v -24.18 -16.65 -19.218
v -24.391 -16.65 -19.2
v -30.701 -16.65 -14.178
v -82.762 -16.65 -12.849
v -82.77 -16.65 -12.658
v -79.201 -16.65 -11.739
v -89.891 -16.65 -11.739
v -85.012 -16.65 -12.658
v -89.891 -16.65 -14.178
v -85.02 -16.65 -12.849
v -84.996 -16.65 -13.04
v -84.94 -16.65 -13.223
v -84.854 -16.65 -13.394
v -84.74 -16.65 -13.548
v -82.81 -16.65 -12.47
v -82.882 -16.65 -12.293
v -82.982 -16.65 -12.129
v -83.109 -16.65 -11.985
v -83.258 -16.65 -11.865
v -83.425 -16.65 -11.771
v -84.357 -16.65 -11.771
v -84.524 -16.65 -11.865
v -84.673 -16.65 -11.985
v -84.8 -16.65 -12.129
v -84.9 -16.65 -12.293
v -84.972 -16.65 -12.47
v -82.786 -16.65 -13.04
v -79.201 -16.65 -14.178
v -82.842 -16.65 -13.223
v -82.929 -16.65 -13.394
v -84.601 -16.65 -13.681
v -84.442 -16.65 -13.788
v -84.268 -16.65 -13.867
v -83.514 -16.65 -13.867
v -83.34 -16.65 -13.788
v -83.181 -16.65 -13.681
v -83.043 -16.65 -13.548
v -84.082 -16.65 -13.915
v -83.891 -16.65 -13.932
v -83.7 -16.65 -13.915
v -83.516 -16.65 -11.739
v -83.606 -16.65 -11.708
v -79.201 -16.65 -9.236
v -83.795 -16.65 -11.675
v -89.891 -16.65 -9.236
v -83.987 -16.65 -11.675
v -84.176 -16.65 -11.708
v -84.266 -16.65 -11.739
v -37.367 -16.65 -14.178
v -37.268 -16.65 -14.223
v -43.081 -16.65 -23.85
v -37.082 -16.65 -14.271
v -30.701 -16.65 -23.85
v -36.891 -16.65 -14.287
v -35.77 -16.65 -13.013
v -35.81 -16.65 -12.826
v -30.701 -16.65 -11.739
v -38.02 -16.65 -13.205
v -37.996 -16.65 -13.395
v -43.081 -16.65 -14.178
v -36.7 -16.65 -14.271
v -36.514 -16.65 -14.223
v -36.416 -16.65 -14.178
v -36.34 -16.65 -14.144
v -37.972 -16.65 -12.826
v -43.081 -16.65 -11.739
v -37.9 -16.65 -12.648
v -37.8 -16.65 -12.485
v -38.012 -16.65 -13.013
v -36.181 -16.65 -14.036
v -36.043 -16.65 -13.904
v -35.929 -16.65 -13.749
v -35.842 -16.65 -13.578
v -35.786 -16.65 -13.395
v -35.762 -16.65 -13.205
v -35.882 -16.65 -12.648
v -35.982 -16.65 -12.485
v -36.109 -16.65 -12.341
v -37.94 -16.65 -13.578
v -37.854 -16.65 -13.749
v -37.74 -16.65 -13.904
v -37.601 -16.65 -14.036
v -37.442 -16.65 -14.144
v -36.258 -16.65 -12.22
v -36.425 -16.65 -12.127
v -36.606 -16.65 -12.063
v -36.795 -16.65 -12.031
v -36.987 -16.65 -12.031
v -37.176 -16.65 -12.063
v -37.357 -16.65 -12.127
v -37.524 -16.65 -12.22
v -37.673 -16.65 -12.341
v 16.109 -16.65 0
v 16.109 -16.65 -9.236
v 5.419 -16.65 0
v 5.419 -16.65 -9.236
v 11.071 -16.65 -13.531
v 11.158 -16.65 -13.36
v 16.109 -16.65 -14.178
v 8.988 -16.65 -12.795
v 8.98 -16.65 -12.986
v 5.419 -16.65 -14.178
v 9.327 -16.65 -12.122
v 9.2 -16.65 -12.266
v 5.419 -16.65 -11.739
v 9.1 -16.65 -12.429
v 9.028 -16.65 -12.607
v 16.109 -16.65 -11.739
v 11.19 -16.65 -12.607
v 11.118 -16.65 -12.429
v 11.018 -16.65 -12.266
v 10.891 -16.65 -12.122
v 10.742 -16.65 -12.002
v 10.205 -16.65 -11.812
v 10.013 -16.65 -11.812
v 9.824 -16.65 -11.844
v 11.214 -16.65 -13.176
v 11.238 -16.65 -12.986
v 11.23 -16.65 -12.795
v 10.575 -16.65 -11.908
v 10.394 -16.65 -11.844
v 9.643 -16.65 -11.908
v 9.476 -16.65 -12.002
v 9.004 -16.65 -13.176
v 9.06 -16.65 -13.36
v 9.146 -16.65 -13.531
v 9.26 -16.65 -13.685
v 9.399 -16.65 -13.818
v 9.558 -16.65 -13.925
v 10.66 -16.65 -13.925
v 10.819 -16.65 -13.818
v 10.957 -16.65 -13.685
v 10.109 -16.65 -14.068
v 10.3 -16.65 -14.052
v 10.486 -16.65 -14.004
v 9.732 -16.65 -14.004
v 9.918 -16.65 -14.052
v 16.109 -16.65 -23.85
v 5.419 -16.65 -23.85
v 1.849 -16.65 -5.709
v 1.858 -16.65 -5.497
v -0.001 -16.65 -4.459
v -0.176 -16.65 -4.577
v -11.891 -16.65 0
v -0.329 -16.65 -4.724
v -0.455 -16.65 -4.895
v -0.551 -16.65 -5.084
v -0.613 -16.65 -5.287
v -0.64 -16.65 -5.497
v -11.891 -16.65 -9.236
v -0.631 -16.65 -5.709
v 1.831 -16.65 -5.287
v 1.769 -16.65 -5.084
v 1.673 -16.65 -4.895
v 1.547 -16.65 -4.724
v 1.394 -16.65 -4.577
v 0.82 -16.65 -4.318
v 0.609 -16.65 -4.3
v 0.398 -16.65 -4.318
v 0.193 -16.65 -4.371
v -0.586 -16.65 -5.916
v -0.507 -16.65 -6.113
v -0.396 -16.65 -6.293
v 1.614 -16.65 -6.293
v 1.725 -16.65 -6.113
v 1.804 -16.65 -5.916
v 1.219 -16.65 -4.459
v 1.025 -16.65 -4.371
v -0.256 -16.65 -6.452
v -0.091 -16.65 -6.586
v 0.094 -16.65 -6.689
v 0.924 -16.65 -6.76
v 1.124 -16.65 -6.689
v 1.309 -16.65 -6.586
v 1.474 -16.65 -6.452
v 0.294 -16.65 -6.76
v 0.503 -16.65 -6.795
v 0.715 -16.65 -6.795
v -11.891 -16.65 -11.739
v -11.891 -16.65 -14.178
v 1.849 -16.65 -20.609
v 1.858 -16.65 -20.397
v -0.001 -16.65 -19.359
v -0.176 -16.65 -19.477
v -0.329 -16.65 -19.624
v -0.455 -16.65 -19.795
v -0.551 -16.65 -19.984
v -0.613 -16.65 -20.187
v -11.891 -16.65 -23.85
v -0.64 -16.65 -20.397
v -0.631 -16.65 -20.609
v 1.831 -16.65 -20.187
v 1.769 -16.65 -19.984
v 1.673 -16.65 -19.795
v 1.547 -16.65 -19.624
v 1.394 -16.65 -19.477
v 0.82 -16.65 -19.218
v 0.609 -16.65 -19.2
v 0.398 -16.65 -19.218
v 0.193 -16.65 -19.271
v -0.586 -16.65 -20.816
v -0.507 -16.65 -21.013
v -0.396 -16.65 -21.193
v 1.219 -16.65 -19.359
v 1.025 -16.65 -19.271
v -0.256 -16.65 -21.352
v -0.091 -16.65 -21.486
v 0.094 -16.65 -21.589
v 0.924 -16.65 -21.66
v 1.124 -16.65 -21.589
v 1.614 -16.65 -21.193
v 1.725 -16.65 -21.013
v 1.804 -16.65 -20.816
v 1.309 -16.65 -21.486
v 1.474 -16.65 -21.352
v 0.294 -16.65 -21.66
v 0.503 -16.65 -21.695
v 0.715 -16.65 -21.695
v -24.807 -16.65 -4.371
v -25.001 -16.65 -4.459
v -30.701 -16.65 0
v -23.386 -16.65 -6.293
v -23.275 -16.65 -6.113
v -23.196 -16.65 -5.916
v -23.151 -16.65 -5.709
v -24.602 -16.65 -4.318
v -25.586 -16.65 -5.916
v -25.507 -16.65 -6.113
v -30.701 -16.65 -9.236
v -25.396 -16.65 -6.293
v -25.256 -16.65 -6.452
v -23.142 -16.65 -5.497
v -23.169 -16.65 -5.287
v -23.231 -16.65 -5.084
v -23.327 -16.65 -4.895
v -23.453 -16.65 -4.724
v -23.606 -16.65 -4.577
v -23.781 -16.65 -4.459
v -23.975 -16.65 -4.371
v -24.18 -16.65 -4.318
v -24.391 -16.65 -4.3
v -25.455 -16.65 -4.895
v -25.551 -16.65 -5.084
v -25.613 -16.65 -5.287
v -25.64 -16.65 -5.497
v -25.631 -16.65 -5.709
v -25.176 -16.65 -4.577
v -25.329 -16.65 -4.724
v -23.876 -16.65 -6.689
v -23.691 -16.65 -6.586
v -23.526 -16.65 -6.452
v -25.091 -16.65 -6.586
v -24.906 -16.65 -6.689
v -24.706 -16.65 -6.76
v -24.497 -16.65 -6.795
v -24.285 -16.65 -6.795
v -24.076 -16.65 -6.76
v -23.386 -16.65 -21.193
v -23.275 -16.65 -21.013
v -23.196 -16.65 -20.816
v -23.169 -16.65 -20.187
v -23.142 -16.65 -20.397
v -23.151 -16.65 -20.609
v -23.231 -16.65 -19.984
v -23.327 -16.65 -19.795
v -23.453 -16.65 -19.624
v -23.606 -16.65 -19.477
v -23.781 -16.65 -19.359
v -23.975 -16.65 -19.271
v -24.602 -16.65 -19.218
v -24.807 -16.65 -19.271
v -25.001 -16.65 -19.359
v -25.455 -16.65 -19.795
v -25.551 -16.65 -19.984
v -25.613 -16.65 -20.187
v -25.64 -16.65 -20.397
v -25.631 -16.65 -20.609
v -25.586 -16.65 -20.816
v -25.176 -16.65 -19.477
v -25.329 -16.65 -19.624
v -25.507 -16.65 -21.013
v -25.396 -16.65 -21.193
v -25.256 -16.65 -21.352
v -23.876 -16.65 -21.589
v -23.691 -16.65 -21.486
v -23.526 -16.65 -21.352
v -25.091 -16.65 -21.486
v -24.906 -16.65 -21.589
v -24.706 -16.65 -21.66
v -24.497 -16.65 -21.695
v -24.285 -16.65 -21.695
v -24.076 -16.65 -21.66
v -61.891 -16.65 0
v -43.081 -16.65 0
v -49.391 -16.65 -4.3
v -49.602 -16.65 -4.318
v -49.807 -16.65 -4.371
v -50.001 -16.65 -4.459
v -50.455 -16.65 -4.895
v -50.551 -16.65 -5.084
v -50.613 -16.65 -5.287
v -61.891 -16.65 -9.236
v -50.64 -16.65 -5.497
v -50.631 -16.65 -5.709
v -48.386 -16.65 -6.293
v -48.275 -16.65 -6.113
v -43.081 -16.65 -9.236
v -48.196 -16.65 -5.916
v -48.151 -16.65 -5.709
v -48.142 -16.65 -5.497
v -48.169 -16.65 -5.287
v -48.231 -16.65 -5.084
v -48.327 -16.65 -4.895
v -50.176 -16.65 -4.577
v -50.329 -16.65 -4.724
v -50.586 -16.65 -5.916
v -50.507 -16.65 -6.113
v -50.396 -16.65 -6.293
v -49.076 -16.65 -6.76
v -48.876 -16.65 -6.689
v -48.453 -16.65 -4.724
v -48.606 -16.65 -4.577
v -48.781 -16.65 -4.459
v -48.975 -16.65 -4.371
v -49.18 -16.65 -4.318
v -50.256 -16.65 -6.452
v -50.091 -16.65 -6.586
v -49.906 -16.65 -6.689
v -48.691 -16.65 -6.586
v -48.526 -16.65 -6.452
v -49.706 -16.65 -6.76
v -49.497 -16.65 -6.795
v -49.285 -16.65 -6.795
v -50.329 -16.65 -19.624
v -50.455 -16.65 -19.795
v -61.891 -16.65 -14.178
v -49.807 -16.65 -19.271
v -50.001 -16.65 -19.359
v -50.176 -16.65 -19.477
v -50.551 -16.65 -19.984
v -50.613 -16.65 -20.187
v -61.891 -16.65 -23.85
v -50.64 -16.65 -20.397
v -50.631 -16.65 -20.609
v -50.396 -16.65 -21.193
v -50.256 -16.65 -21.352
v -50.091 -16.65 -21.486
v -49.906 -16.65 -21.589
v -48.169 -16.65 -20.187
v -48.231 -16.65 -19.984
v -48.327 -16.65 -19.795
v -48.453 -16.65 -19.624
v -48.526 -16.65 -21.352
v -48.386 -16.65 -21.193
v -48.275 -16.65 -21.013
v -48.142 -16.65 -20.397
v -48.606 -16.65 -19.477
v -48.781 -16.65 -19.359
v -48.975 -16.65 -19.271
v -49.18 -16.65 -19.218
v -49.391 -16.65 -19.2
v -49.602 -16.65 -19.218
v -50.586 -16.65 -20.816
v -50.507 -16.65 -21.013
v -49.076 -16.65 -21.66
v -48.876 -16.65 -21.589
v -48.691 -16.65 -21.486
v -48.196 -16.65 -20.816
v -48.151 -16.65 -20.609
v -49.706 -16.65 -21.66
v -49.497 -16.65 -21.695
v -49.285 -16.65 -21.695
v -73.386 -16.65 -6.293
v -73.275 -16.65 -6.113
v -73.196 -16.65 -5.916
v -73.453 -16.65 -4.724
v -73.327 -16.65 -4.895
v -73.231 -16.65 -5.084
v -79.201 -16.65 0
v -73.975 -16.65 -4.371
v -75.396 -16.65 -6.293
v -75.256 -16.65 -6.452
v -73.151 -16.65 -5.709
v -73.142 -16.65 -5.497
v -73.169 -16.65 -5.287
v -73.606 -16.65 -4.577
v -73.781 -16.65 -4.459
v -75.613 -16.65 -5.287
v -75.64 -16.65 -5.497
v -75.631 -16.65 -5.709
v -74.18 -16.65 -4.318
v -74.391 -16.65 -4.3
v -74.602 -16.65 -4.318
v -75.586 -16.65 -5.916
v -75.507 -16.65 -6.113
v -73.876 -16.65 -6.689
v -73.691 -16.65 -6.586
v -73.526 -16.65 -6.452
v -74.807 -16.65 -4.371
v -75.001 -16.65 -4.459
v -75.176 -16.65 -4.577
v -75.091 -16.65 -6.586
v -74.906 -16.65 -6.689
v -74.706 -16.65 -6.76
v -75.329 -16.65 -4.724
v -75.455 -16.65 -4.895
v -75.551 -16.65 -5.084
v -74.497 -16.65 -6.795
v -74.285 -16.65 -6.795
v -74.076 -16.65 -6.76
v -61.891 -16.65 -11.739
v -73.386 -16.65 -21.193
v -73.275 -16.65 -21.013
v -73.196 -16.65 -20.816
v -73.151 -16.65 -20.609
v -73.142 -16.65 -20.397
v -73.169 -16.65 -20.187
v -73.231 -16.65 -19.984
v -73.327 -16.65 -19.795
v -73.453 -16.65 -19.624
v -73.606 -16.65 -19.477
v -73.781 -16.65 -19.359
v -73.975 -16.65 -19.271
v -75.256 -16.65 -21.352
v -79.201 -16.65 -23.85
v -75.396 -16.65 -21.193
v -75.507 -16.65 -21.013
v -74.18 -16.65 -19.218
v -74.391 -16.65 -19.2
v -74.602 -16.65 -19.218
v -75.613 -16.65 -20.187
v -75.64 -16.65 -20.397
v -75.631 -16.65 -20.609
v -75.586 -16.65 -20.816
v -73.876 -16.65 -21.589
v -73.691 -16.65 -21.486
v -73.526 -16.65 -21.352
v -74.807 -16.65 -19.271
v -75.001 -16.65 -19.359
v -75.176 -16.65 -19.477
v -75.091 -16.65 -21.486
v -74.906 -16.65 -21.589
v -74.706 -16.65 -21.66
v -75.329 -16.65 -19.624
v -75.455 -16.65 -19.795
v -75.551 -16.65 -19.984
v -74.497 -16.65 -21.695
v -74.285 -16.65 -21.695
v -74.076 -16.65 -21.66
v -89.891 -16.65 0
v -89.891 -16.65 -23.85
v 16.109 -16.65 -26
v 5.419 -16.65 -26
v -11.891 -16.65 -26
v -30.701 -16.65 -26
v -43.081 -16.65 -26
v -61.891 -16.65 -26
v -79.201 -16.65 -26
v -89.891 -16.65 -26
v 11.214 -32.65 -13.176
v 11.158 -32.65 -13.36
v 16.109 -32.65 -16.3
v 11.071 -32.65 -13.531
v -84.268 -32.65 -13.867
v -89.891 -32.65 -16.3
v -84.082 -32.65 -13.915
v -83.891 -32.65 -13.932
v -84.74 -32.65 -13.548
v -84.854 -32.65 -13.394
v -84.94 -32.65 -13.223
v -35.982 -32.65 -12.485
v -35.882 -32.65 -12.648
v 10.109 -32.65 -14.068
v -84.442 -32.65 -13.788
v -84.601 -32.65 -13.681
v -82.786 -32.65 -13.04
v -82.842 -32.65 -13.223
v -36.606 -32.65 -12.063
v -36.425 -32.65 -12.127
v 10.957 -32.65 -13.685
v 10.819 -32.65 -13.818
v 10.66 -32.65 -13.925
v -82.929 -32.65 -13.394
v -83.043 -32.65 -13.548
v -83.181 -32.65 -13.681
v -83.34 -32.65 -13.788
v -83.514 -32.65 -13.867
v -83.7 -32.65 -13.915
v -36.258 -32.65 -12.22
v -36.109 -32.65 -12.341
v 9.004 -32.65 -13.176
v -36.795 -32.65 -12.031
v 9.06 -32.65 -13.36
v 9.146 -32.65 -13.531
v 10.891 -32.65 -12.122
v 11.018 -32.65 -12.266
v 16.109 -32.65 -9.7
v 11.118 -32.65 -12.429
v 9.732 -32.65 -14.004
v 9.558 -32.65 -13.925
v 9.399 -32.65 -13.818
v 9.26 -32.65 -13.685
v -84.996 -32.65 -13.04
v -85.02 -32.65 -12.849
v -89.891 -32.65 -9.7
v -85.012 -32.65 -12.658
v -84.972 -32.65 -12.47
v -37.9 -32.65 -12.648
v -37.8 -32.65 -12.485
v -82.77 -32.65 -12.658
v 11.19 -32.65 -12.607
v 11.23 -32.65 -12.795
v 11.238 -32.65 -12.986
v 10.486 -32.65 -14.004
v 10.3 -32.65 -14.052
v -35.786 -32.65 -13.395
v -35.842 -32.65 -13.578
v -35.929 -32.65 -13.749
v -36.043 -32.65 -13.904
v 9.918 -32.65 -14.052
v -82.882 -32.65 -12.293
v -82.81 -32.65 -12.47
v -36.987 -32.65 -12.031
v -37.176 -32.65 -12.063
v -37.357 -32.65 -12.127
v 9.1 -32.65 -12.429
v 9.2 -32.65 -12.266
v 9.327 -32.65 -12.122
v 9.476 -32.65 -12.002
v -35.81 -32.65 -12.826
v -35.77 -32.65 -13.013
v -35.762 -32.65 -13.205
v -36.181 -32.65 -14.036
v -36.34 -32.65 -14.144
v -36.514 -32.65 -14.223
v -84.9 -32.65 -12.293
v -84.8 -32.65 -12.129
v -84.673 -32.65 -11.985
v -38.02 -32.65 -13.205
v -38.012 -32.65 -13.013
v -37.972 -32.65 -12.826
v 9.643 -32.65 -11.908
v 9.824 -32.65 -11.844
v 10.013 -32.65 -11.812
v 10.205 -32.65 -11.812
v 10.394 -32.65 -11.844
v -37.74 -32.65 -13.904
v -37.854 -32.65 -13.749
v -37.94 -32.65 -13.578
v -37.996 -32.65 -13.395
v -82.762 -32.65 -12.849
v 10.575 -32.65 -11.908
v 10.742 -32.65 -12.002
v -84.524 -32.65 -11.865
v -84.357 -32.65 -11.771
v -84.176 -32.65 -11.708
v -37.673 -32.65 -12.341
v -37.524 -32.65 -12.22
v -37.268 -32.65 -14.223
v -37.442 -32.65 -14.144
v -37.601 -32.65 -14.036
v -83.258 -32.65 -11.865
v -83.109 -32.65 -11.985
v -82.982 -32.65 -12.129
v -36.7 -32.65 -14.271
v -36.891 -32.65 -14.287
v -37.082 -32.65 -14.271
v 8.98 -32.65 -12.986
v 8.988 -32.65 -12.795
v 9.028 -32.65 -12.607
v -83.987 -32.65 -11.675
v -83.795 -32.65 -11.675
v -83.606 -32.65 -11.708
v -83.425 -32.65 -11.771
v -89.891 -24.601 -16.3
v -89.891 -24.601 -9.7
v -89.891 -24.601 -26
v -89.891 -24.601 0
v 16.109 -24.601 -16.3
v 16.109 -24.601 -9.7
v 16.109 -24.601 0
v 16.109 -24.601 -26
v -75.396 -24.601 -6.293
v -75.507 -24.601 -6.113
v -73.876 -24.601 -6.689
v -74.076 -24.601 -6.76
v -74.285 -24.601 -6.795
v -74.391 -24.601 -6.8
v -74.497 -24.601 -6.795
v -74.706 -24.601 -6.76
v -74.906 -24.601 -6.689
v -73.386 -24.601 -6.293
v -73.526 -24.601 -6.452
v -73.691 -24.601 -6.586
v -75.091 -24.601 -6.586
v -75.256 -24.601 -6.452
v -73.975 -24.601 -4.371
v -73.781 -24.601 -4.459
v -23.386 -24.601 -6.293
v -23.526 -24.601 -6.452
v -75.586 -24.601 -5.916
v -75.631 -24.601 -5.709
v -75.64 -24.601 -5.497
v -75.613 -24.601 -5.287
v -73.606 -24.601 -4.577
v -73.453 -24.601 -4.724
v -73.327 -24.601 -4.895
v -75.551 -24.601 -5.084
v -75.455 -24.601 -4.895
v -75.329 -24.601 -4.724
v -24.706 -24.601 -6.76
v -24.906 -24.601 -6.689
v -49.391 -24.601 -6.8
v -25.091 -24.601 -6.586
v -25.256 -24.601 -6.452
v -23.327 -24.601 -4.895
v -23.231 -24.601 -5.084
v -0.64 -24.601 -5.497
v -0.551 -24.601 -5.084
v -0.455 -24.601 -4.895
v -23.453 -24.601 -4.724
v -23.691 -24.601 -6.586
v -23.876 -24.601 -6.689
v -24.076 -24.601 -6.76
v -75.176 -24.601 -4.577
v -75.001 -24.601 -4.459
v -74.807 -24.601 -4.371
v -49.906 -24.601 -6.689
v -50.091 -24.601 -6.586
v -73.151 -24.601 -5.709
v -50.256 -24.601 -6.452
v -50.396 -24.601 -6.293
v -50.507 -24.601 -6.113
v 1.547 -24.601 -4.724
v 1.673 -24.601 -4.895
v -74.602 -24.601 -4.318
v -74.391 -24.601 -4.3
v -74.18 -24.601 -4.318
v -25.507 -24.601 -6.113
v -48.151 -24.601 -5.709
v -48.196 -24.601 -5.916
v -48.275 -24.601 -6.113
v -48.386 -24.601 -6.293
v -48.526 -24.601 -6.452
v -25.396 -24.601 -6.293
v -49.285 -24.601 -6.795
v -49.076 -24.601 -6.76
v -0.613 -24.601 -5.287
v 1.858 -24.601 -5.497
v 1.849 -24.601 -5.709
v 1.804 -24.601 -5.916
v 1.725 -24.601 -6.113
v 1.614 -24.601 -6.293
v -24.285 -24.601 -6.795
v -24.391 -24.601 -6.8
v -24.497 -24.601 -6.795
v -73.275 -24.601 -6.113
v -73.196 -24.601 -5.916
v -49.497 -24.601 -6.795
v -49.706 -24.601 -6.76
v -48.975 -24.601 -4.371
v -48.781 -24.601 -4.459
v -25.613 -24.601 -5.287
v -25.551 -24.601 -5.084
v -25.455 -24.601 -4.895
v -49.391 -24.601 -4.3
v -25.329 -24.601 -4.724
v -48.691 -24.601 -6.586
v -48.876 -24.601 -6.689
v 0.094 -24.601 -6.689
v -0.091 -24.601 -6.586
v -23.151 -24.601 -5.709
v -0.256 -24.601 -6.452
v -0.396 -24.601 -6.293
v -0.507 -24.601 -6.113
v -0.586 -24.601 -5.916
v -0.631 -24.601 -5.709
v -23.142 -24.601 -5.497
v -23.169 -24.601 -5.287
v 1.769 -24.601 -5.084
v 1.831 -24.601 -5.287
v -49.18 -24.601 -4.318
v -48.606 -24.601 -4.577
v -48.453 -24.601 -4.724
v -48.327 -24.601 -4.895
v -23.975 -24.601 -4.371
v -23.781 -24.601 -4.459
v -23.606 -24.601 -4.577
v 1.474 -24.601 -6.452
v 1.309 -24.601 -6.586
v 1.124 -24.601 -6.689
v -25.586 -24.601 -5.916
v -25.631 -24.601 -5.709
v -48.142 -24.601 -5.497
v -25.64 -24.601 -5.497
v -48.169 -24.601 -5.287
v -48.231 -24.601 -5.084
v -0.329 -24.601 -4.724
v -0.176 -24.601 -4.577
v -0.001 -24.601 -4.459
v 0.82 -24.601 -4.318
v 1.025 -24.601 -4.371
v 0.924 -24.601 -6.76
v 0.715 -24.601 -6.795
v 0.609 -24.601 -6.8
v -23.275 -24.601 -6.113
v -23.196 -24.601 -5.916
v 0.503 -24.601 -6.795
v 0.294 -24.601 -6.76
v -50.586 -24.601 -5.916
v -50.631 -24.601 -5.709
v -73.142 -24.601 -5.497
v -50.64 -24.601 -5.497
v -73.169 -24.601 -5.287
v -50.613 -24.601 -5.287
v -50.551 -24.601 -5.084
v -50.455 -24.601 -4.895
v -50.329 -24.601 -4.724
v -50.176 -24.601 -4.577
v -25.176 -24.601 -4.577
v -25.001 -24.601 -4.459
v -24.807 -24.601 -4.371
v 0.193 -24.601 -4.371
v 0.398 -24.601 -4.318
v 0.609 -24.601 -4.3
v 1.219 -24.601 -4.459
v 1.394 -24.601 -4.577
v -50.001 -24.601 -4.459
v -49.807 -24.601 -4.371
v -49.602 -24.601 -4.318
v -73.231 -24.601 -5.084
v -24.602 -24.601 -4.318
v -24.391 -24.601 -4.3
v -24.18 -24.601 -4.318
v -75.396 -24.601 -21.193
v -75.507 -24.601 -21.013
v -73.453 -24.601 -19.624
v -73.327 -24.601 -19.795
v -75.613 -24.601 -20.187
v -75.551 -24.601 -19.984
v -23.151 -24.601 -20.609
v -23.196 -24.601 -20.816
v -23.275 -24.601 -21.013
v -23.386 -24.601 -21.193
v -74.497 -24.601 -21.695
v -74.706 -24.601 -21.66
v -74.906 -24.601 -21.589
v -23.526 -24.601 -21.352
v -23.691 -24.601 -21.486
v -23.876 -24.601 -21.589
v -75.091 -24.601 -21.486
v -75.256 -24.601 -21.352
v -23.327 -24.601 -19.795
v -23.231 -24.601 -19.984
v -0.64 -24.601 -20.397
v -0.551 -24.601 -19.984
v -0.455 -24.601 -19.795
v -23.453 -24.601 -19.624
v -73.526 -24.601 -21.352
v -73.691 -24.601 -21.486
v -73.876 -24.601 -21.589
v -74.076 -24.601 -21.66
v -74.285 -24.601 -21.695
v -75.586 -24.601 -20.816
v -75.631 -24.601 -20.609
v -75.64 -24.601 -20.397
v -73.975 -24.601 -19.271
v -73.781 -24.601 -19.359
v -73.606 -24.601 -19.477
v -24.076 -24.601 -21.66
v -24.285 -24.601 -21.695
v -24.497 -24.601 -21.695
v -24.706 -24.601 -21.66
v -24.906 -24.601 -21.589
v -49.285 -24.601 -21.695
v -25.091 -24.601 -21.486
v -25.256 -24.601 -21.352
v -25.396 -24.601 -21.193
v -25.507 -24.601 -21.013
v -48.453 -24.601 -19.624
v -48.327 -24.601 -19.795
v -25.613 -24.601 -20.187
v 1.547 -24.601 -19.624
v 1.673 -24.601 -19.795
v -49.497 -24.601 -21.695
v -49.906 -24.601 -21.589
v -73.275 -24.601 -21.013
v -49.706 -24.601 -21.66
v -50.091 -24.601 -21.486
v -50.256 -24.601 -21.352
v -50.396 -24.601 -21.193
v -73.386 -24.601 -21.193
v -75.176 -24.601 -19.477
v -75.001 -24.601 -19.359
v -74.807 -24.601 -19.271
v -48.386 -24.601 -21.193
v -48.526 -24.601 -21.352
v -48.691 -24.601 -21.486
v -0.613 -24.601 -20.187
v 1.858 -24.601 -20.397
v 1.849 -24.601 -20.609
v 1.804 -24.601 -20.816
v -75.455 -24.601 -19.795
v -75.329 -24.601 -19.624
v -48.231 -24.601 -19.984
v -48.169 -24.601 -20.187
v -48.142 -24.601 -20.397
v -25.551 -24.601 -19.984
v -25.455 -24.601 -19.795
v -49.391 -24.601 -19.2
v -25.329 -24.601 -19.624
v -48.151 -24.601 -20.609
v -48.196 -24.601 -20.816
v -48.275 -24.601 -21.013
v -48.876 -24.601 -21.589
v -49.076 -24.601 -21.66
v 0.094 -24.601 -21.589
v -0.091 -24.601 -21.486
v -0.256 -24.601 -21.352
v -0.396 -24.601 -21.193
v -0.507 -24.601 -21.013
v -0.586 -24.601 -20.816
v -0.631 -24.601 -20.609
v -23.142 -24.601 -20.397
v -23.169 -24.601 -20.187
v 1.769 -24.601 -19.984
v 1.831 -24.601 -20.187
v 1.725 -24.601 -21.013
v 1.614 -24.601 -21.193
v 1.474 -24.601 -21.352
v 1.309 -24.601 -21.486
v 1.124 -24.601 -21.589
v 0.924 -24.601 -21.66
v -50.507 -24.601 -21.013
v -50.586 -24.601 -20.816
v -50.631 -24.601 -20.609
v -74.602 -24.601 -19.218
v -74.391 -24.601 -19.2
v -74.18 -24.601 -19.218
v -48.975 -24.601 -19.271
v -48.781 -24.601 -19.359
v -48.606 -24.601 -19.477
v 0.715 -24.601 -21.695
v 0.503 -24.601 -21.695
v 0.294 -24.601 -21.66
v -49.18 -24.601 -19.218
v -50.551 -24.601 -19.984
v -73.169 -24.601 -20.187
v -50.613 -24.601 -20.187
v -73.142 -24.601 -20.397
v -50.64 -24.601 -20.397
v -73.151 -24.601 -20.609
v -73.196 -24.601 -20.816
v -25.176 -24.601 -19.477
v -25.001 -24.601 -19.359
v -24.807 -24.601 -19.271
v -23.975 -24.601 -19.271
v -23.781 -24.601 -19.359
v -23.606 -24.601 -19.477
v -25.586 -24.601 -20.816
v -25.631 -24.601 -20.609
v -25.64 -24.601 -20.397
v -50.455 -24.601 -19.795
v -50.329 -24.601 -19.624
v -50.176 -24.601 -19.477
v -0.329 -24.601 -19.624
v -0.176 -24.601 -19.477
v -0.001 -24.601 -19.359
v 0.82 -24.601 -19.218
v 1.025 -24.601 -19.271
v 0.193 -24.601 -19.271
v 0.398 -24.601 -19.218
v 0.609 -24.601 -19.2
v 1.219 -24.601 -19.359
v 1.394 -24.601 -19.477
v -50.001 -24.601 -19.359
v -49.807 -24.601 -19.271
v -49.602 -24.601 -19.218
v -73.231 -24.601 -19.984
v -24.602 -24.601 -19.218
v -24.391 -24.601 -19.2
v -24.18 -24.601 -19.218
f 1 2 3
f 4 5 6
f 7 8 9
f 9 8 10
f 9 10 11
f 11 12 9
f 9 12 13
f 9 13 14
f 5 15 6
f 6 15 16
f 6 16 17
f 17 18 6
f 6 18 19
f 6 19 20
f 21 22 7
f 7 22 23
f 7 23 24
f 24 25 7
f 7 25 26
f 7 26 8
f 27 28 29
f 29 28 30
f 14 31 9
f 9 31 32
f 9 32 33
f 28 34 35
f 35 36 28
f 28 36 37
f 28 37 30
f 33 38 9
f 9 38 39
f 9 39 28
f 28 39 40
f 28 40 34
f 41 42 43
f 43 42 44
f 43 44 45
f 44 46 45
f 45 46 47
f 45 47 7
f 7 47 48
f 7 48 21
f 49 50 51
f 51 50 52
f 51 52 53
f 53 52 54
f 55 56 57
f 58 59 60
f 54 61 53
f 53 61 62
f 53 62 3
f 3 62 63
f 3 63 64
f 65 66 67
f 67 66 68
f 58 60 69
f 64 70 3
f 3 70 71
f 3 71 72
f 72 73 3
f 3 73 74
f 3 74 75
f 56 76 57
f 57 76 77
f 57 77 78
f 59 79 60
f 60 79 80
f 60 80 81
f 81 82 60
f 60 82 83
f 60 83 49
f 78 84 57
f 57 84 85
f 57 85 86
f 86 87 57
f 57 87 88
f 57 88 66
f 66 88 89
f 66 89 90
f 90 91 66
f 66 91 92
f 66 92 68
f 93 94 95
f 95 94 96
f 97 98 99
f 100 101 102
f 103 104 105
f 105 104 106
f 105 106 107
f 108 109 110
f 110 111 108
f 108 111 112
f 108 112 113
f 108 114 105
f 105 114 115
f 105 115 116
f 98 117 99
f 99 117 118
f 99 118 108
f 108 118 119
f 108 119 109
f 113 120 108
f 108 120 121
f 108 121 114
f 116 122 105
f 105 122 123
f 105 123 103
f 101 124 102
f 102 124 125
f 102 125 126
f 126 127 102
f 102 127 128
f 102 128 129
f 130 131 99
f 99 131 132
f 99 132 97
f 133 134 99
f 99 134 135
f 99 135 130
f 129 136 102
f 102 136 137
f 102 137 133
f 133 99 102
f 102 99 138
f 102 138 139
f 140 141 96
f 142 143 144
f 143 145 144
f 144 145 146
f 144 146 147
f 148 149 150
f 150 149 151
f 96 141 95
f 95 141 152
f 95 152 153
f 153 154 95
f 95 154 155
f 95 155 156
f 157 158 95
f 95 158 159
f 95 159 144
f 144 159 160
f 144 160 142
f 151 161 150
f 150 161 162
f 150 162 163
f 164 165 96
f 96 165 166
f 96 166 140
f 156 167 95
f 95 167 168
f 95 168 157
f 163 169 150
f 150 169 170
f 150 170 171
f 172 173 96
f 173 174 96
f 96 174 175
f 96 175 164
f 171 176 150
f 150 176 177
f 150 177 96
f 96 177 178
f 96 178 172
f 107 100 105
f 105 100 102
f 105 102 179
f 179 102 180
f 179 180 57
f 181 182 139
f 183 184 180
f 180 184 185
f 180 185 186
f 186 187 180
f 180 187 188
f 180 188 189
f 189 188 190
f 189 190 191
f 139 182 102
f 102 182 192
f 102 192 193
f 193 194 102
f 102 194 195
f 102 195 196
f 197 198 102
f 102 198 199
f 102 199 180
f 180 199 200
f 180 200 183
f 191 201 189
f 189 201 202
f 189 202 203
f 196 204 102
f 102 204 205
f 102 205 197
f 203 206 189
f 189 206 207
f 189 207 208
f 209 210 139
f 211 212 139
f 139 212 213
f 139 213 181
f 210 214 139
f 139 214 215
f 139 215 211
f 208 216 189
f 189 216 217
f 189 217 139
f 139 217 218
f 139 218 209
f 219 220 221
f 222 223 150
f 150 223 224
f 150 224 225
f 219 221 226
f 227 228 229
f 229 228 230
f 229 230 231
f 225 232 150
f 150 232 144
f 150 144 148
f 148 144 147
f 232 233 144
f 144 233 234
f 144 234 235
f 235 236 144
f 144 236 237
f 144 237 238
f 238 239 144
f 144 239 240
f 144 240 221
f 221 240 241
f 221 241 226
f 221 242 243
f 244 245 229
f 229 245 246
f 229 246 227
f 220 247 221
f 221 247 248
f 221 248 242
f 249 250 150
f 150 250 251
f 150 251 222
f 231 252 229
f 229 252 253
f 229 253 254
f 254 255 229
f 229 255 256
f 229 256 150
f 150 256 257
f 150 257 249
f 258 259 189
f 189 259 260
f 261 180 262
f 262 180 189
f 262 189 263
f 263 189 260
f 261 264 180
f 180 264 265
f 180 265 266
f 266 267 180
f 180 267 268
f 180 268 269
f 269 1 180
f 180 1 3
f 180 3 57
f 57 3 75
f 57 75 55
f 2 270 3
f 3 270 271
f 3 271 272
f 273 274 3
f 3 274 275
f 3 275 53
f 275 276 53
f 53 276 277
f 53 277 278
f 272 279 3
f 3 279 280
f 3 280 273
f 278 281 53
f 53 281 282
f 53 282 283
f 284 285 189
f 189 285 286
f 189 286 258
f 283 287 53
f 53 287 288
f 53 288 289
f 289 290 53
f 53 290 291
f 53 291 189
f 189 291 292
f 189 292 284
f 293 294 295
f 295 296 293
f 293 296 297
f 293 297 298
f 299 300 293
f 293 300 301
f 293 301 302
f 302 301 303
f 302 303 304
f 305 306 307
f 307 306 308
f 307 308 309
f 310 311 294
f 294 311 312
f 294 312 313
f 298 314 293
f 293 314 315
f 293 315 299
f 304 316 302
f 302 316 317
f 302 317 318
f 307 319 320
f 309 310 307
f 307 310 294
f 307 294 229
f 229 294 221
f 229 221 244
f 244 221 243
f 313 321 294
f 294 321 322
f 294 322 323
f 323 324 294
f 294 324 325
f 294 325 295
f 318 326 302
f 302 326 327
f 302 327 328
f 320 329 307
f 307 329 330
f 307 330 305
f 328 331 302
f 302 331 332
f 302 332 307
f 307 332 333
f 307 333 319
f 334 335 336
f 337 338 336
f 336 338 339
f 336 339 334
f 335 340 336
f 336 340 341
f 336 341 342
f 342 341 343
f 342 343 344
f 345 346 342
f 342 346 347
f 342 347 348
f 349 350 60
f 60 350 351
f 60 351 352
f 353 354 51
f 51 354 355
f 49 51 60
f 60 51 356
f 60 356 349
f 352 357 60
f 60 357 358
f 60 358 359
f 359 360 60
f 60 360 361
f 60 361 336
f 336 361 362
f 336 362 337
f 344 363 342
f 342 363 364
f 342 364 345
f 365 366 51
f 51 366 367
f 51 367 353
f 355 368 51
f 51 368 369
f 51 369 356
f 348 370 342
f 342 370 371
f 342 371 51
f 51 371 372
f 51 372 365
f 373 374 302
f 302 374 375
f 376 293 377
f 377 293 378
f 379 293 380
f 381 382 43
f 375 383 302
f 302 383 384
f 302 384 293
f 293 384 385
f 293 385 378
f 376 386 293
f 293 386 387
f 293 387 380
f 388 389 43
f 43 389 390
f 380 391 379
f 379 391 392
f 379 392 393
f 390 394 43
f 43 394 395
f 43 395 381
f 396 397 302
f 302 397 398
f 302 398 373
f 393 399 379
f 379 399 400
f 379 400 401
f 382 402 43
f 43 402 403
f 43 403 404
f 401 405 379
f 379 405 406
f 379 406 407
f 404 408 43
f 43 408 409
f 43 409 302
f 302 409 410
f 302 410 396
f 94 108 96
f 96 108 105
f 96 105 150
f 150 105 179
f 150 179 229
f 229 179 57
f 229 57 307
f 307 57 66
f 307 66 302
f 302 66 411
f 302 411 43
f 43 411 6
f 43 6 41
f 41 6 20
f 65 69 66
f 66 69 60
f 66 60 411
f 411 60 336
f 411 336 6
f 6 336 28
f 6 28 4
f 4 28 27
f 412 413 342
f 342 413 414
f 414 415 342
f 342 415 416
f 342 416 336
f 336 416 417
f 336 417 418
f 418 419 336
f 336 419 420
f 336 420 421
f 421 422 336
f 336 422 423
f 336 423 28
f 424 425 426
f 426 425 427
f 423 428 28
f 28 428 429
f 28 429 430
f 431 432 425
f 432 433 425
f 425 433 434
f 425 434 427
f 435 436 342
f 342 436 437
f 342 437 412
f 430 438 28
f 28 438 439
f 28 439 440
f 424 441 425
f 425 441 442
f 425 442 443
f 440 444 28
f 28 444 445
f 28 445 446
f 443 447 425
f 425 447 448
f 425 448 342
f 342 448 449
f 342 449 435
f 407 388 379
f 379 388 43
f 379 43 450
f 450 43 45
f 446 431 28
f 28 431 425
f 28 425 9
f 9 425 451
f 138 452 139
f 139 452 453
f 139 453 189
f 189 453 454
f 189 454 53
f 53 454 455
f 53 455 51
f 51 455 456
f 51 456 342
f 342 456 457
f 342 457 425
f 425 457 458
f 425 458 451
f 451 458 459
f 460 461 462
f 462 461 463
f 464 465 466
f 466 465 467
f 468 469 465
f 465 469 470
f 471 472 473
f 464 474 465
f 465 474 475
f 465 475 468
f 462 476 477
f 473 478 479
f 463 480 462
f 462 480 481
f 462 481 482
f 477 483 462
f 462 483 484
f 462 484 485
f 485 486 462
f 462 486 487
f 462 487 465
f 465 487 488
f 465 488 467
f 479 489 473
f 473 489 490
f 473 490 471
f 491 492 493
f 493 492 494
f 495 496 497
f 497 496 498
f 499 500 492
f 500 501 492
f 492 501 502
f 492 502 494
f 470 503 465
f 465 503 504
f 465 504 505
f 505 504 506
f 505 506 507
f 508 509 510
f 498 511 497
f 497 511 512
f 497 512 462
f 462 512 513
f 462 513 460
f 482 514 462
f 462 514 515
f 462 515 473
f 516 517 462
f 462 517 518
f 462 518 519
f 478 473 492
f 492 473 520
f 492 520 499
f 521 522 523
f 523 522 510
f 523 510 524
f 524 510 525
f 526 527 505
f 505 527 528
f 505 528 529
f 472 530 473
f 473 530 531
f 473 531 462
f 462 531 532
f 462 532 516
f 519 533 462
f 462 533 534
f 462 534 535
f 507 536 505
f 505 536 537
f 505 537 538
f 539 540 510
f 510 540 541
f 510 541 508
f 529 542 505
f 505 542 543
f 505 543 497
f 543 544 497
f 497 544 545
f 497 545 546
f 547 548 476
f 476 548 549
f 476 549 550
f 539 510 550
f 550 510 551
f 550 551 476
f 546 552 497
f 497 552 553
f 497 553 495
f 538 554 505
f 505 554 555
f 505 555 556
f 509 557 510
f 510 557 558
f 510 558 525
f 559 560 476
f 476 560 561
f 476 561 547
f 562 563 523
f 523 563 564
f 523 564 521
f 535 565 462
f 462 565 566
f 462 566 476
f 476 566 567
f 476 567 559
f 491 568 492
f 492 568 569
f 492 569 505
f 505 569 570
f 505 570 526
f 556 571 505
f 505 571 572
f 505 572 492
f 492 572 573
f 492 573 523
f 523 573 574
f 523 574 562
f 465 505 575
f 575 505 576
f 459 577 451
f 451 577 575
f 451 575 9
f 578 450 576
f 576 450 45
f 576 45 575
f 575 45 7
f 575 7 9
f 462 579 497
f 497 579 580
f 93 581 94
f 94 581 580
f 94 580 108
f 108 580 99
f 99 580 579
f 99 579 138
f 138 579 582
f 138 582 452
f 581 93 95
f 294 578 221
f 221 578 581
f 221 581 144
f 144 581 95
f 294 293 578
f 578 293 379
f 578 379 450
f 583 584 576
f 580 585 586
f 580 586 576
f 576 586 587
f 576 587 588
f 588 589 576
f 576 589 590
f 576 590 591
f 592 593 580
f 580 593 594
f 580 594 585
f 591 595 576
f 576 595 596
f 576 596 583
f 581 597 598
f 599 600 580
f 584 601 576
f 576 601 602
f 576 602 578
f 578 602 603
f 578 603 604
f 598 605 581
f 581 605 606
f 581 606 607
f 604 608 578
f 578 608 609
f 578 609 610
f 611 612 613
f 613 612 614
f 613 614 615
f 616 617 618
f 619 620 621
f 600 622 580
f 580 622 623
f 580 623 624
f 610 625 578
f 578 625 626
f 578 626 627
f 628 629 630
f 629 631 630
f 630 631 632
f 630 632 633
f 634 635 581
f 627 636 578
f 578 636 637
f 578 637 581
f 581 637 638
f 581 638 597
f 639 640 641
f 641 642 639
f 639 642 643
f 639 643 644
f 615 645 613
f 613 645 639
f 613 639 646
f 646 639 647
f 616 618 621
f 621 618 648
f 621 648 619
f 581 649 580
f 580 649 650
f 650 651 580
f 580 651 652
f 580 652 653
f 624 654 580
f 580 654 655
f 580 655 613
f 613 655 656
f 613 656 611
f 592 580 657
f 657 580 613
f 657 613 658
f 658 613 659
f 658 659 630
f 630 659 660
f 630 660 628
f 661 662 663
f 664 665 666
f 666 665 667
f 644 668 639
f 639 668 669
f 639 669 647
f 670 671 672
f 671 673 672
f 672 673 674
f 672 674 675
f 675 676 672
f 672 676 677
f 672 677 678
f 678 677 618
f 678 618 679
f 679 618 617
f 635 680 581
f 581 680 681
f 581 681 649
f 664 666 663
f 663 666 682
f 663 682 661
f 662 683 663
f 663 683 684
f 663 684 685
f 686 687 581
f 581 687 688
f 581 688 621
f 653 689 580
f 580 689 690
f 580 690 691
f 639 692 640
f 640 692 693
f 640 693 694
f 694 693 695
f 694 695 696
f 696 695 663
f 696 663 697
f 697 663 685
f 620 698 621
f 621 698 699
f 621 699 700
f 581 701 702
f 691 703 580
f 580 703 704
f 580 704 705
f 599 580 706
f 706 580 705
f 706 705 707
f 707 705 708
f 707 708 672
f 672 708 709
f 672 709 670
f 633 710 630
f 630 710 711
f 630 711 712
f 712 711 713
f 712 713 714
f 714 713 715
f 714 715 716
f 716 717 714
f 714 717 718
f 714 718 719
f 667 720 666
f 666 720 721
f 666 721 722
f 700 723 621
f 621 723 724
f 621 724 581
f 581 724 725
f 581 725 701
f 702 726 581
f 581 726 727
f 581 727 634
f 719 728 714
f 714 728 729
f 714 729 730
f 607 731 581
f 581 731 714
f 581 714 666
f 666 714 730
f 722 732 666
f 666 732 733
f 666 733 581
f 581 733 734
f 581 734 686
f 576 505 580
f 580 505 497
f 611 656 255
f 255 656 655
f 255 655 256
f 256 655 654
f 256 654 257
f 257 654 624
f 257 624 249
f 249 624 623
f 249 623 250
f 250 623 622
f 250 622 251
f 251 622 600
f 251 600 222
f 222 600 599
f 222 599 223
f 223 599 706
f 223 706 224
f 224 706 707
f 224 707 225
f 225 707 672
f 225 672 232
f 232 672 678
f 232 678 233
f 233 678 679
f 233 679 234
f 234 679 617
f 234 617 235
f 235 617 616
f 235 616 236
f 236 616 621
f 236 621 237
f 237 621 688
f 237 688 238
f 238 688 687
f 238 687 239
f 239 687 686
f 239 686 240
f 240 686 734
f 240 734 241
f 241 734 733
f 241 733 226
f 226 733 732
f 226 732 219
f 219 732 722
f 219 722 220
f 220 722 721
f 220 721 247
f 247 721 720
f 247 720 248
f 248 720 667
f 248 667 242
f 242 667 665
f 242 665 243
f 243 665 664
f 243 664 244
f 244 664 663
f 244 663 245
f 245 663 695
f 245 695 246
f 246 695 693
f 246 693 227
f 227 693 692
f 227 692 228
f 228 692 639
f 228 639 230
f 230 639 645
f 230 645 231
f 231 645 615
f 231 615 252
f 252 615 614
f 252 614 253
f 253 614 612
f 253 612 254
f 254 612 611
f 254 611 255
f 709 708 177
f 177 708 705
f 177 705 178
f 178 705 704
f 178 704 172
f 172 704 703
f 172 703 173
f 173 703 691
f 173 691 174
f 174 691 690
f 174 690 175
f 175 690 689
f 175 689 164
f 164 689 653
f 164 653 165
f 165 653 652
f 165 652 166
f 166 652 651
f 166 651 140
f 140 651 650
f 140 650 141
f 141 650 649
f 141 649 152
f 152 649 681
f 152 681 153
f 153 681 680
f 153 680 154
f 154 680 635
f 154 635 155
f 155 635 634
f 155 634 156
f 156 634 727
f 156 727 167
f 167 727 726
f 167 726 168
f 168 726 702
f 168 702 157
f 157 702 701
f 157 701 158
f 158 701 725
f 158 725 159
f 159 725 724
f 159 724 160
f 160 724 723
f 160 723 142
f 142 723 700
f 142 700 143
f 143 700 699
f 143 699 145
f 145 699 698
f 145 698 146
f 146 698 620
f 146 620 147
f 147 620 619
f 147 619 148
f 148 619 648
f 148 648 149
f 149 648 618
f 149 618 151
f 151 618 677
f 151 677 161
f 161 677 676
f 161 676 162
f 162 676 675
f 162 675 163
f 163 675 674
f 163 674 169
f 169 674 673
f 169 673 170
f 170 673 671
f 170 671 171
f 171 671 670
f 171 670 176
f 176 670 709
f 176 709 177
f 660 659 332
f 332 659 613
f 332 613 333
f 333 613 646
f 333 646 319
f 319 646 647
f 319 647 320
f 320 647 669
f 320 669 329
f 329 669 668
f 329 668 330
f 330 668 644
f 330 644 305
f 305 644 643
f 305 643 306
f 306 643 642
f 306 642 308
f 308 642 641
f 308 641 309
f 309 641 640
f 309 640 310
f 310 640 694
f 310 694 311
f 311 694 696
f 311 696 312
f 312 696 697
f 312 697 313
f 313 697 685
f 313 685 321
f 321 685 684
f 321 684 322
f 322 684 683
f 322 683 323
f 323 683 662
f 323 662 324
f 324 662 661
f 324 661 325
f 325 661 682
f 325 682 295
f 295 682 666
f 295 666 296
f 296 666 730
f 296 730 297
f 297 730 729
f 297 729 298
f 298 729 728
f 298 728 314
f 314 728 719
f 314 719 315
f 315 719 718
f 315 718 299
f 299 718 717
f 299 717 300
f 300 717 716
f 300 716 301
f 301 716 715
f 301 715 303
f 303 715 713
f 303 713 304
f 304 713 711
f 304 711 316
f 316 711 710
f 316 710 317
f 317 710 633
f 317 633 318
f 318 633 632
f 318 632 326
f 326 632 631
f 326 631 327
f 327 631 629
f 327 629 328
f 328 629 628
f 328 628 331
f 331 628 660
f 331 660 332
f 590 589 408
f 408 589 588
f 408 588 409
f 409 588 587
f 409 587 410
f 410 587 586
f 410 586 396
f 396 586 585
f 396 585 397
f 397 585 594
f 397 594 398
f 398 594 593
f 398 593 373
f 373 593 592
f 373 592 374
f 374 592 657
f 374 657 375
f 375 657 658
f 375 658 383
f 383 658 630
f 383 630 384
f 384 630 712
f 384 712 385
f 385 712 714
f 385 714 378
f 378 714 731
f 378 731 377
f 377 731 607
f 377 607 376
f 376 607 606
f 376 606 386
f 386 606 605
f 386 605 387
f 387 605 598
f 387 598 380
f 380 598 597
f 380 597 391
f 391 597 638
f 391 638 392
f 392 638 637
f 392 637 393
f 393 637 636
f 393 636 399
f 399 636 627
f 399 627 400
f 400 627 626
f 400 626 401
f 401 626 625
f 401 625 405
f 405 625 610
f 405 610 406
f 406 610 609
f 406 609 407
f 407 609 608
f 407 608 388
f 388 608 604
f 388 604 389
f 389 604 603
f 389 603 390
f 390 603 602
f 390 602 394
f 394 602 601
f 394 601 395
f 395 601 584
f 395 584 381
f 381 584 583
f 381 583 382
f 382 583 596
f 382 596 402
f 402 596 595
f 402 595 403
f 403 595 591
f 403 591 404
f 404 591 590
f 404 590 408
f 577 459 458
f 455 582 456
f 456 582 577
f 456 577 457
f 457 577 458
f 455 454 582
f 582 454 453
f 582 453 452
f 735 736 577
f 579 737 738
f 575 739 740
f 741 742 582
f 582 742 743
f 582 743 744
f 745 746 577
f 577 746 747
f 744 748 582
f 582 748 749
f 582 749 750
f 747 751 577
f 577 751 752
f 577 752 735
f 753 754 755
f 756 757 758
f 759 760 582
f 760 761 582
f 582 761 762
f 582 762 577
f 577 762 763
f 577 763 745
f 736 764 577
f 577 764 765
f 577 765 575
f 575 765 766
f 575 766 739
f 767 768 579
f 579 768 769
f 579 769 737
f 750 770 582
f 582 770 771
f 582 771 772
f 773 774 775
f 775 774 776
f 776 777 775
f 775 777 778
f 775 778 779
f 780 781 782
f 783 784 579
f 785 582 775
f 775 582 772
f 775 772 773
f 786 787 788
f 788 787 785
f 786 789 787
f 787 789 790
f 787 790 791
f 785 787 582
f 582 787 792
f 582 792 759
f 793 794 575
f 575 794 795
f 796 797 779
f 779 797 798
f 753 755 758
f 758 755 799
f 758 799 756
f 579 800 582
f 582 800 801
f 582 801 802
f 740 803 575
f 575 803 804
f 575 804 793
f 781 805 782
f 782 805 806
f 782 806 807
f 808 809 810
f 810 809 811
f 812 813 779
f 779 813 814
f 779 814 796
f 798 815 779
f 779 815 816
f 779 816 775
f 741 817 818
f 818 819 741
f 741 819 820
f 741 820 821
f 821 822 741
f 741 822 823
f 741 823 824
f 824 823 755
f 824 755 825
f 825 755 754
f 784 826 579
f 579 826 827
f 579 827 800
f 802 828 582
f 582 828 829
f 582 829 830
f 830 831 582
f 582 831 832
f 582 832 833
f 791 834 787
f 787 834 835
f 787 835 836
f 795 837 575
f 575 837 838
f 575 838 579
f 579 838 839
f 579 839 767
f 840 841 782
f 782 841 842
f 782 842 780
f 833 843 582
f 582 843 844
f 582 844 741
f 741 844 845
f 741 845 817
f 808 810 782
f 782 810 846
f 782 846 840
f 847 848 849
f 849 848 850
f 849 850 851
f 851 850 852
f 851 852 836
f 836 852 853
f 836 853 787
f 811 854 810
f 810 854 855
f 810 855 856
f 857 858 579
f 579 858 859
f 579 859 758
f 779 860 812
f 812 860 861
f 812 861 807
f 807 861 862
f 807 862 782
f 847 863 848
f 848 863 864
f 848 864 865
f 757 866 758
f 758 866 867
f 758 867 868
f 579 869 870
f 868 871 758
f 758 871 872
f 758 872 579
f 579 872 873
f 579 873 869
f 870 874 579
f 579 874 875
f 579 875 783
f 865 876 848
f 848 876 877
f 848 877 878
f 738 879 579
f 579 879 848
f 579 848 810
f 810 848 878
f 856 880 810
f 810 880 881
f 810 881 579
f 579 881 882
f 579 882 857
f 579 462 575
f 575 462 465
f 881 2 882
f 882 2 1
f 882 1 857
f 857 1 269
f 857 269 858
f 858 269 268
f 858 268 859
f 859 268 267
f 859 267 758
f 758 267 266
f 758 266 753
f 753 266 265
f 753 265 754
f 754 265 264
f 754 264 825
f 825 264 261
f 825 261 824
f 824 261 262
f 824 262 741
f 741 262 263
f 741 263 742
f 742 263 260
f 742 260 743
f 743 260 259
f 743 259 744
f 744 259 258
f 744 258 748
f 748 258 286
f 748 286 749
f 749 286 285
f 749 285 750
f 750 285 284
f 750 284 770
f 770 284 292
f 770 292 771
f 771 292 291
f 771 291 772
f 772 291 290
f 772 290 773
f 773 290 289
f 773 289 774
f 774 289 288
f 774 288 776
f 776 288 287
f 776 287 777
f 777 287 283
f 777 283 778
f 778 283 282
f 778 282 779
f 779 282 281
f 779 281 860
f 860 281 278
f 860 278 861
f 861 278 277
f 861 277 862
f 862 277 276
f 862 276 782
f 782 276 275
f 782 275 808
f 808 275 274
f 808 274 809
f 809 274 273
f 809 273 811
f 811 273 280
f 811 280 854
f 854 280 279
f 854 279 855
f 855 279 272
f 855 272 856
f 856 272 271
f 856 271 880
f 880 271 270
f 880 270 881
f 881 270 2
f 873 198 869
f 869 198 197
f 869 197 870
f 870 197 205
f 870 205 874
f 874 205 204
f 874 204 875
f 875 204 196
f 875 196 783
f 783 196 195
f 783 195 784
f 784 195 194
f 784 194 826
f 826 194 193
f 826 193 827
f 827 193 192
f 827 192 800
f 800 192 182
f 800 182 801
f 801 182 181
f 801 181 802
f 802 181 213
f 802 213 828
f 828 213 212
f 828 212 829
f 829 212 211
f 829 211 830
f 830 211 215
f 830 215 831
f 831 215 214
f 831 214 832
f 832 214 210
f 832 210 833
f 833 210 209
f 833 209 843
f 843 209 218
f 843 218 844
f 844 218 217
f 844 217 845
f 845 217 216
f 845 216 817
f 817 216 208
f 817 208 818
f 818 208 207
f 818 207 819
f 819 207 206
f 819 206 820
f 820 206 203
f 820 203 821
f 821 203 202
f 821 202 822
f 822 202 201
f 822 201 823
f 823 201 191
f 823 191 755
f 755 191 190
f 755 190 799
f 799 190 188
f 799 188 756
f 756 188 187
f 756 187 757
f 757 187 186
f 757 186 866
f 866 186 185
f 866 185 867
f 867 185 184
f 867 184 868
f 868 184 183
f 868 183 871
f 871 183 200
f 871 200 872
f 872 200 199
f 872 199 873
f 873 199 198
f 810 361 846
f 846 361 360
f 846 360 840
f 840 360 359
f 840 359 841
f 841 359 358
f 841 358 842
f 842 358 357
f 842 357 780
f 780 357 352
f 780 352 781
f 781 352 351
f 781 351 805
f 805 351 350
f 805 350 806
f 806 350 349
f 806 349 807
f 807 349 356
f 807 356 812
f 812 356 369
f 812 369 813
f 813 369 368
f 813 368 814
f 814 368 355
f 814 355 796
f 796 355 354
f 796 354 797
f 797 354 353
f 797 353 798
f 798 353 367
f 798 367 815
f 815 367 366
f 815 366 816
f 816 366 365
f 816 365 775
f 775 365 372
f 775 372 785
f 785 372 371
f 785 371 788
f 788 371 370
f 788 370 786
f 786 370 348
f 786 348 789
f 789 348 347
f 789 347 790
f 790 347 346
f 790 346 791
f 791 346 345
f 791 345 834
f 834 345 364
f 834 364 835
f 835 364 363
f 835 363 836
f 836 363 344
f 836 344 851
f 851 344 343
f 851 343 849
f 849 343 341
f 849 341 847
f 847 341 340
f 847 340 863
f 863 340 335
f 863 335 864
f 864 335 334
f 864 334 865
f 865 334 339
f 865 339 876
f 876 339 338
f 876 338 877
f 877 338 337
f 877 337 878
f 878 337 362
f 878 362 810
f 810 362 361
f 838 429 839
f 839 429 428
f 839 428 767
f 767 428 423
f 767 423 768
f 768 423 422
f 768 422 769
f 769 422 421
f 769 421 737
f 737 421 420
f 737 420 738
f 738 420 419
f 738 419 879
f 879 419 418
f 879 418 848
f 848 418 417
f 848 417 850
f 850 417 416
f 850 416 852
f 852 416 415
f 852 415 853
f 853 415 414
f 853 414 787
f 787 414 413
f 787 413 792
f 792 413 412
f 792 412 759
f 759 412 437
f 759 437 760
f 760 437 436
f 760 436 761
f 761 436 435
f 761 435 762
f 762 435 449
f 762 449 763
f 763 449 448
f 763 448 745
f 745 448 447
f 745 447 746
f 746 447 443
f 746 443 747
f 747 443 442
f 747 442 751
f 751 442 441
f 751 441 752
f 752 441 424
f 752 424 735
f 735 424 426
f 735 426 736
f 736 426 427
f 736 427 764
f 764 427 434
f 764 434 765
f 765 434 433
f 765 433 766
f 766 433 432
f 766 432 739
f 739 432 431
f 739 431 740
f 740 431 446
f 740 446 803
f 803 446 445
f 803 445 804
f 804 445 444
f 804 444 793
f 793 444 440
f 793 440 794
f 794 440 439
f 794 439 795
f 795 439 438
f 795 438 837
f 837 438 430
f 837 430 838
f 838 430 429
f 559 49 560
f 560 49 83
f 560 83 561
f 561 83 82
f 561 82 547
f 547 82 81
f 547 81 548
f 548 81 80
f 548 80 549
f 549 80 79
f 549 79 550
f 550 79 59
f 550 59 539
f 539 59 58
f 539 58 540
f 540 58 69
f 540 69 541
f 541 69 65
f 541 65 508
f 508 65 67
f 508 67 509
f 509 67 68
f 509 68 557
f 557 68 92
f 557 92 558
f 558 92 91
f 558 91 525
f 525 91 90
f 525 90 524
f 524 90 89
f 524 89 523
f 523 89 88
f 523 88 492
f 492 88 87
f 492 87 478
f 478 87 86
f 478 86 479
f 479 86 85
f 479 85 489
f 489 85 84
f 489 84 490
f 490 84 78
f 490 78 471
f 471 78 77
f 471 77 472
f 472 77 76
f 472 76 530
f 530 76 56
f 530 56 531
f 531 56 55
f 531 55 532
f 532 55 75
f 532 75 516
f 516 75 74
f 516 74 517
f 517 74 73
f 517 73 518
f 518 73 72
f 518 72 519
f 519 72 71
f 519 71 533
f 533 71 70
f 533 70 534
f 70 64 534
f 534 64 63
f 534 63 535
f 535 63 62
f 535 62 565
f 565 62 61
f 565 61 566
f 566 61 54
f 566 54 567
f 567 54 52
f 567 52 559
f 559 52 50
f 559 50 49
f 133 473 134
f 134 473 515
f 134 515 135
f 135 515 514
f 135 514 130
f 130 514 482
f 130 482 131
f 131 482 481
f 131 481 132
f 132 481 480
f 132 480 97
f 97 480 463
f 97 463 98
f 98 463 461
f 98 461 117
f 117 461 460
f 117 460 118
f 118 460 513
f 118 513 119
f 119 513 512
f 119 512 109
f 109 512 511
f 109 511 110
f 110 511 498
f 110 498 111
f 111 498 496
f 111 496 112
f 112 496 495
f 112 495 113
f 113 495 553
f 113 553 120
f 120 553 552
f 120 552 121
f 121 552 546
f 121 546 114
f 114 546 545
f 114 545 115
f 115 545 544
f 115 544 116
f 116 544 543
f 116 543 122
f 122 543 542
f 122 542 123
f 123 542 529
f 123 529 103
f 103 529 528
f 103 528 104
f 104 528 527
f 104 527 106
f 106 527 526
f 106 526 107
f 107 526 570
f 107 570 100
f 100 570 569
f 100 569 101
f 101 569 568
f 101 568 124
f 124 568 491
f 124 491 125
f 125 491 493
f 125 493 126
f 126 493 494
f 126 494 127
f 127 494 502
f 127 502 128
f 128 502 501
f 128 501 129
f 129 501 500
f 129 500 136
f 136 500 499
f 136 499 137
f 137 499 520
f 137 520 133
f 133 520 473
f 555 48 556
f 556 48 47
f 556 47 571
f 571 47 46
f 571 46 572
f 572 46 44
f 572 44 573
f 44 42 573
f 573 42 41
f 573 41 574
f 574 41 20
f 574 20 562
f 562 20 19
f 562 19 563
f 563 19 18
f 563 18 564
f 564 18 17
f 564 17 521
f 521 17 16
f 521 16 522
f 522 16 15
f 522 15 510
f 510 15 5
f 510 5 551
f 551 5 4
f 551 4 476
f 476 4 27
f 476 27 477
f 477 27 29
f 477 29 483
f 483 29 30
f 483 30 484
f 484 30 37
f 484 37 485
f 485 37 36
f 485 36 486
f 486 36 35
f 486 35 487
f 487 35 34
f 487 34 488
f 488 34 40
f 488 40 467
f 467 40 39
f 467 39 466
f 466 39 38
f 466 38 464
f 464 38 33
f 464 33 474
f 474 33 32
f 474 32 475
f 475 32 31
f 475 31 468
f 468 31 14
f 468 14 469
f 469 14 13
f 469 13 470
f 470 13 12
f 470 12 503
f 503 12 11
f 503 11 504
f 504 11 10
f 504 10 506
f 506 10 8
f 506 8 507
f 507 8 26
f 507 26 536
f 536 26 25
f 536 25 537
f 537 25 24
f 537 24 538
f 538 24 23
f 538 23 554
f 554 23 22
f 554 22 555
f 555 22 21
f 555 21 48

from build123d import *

# Parameters (mm, degrees)
SKETCH4_W                       = 106
SKETCH4_H                       = 16
BOSS_EXTRUDE2_DEPTH             = 13
CUT_EXTRUDE3_START              = -9.7
SKETCH25_W                      = 106
SKETCH25_H                      = 8.1
CUT_EXTRUDE3_DEPTH              = 107.216438698
M3X0_5_TAPPED_HOLE1_D           = 2.5
MIRROR1_START                   = -24.601316976
MIRROR1_OUTLINE_W               = 106
MIRROR1_OUTLINE_H               = 13
MIRROR1_OUTLINE_R               = 1.25
MIRROR1_DEPTH                   = 7.951316976
MIRROR1_START_2                 = -32.65
MIRROR1_2_OUTLINE_W             = 106
MIRROR1_2_OUTLINE_H             = 3.3
MIRROR1_2_DEPTH                 = 8.048683024
F_4_40_TAPPED_HOLE1_D           = 2.2606
F_4_40_TAPPED_HOLE1_ON_FACE_2_D = 2.2606


# Read off the part's stored shape, not the designer's step: Mirror1
with BuildPart() as part:
    # Sketch4 → Boss-Extrude2 (new body)
    with BuildSketch(Plane.XY):
        with Locations((-36.891047602, -24.65)):
            Rectangle(SKETCH4_W, SKETCH4_H)
    extrude(amount=-BOSS_EXTRUDE2_DEPTH)

    # Sketch25 → Cut-Extrude3 (cut)
    with BuildSketch(Plane.XY.offset(CUT_EXTRUDE3_START)):
        with Locations((-36.891047602, -28.651316976)):
            Rectangle(SKETCH25_W, SKETCH25_H)
    extrude(amount=CUT_EXTRUDE3_DEPTH, mode=Mode.SUBTRACT)

    # M3x0.5 Tapped Hole1 (through all)
    with Locations(Plane(origin=(-74.391047602, -16.65, -5.55), x_dir=(0, 0, 1), z_dir=(0, 1, 0))):
        with Locations((0, 0), (0, 25), (0, 75), (0, 50)):
            Hole(M3X0_5_TAPPED_HOLE1_D / 2)

    # Mirror1 outline → Mirror1 (add)
    with BuildSketch(Plane(origin=(0, 0, 0), x_dir=(1, 0, 0), z_dir=(0, 1, 0)).offset(MIRROR1_START)):
        with Locations((-36.891047602, 19.5)):
            Rectangle(MIRROR1_OUTLINE_W, MIRROR1_OUTLINE_H)
        with Locations((-74.391047602, 20.45)):
            Circle(MIRROR1_OUTLINE_R, mode=Mode.SUBTRACT)
        with Locations((-49.391047602, 20.45)):
            Circle(MIRROR1_OUTLINE_R, mode=Mode.SUBTRACT)
        with Locations((-24.391047602, 20.45)):
            Circle(MIRROR1_OUTLINE_R, mode=Mode.SUBTRACT)
        with Locations((0.608952398, 20.45)):
            Circle(MIRROR1_OUTLINE_R, mode=Mode.SUBTRACT)
    extrude(amount=MIRROR1_DEPTH)

    # Mirror1 2 outline → Mirror1 2 (add)
    with BuildSketch(Plane(origin=(0, 0, 0), x_dir=(1, 0, 0), z_dir=(0, 1, 0)).offset(MIRROR1_START_2)):
        with Locations((-36.891047602, 14.65)):
            Rectangle(MIRROR1_2_OUTLINE_W, MIRROR1_2_OUTLINE_H)
    extrude(amount=MIRROR1_2_DEPTH)

    # #4-40 Tapped Hole1 (through all)
    with Locations(Plane(origin=(-83.891047602, -32.65, -12.801414568), x_dir=(0, 0, -1), z_dir=(0, -1, 0))):
        with Locations((0, 0), (0.13677014, 94), (0.355392609, 47)):
            Hole(F_4_40_TAPPED_HOLE1_D / 2)

    # #4-40 Tapped Hole1 on face 2 (through all)
    with Locations(Plane(origin=(-13.707536503, 0, 46.33240541), x_dir=(0, 0, -1), z_dir=(0, -1, 0))):
        with Locations((0, 0)):
            Hole(F_4_40_TAPPED_HOLE1_ON_FACE_2_D / 2)


solid = part.part
